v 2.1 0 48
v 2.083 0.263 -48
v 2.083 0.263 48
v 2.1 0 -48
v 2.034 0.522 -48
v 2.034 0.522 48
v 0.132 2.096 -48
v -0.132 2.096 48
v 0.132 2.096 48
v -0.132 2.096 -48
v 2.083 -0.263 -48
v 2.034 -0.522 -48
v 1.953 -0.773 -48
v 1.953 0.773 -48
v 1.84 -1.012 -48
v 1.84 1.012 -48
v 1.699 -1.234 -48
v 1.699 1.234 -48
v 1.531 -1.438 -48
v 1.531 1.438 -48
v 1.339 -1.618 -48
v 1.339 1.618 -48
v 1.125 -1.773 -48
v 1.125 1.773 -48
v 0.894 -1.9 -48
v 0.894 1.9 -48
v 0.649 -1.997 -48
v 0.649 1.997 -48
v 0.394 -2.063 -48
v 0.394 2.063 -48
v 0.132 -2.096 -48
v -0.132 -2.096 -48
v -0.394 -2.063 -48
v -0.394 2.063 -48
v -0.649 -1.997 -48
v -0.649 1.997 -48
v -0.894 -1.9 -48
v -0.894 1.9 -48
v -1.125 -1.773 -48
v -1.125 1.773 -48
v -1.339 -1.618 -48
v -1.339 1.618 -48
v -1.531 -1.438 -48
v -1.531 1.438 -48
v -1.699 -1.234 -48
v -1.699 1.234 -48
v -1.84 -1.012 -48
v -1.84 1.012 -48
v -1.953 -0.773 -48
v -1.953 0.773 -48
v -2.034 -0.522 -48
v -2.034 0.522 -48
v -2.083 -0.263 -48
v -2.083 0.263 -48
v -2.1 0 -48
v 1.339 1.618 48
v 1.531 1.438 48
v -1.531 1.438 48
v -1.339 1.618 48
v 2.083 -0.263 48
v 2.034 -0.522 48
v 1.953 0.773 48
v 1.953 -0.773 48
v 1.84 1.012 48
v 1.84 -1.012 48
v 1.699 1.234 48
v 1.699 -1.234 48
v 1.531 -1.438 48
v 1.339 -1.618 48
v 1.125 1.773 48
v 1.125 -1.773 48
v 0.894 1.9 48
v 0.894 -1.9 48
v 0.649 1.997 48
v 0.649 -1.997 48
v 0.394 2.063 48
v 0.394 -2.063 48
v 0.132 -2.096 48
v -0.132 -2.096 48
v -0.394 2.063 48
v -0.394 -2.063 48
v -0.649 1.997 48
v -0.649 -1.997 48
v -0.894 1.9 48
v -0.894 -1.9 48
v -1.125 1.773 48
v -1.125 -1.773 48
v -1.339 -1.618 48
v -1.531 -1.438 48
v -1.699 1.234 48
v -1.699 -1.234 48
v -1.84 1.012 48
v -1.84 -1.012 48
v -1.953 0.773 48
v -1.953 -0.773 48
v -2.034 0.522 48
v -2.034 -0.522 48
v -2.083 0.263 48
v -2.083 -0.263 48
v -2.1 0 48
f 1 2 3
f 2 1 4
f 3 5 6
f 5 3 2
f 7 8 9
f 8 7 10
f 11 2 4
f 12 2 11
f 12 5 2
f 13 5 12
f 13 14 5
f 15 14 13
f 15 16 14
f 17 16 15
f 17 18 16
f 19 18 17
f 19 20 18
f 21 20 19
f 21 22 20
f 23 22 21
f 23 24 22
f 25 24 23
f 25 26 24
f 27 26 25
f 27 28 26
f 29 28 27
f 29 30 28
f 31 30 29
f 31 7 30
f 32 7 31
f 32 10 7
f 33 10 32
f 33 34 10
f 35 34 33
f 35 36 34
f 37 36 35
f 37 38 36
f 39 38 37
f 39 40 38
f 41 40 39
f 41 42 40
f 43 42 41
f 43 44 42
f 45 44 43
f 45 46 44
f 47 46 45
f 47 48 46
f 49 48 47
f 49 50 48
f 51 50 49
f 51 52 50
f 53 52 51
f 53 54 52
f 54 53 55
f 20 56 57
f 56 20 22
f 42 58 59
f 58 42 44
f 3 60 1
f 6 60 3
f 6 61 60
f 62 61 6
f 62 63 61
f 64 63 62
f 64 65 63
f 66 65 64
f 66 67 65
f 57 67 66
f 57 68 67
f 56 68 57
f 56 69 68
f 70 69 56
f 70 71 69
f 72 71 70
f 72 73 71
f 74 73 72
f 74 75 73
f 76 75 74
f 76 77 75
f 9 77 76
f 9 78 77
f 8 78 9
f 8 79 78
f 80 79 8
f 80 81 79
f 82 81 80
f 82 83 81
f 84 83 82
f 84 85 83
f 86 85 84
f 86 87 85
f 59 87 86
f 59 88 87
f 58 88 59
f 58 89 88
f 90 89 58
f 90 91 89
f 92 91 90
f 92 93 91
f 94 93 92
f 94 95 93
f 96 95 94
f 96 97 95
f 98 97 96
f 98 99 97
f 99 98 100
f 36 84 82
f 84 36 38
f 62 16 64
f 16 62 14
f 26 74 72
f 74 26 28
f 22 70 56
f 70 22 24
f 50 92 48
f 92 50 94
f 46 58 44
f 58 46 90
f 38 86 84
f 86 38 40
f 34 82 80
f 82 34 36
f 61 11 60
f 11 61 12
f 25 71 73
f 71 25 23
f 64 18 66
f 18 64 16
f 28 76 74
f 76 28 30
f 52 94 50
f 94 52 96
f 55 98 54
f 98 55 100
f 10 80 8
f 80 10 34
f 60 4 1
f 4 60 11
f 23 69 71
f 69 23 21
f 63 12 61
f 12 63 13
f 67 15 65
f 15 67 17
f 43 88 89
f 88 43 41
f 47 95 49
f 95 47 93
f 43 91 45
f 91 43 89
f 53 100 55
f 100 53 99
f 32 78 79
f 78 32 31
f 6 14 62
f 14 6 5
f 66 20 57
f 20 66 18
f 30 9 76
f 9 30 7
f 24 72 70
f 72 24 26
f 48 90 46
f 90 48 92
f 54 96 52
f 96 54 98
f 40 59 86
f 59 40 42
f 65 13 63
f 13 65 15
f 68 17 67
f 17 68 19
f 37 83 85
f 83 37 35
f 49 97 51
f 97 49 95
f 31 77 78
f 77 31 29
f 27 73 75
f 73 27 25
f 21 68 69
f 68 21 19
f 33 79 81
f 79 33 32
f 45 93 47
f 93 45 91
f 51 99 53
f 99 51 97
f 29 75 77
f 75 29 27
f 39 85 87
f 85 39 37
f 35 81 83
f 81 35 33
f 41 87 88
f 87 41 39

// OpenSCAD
$fn = 50;


difference() {
	union() {
		translate(v = [0, 0, -48.0000000000]) {
			cylinder(h = 96, r = 2.1000000000);
		}
	}
	union() {
		translate(v = [0, 0, -100.0000000000]) {
			cylinder(h = 200, r = 0);
		}
	}
}
